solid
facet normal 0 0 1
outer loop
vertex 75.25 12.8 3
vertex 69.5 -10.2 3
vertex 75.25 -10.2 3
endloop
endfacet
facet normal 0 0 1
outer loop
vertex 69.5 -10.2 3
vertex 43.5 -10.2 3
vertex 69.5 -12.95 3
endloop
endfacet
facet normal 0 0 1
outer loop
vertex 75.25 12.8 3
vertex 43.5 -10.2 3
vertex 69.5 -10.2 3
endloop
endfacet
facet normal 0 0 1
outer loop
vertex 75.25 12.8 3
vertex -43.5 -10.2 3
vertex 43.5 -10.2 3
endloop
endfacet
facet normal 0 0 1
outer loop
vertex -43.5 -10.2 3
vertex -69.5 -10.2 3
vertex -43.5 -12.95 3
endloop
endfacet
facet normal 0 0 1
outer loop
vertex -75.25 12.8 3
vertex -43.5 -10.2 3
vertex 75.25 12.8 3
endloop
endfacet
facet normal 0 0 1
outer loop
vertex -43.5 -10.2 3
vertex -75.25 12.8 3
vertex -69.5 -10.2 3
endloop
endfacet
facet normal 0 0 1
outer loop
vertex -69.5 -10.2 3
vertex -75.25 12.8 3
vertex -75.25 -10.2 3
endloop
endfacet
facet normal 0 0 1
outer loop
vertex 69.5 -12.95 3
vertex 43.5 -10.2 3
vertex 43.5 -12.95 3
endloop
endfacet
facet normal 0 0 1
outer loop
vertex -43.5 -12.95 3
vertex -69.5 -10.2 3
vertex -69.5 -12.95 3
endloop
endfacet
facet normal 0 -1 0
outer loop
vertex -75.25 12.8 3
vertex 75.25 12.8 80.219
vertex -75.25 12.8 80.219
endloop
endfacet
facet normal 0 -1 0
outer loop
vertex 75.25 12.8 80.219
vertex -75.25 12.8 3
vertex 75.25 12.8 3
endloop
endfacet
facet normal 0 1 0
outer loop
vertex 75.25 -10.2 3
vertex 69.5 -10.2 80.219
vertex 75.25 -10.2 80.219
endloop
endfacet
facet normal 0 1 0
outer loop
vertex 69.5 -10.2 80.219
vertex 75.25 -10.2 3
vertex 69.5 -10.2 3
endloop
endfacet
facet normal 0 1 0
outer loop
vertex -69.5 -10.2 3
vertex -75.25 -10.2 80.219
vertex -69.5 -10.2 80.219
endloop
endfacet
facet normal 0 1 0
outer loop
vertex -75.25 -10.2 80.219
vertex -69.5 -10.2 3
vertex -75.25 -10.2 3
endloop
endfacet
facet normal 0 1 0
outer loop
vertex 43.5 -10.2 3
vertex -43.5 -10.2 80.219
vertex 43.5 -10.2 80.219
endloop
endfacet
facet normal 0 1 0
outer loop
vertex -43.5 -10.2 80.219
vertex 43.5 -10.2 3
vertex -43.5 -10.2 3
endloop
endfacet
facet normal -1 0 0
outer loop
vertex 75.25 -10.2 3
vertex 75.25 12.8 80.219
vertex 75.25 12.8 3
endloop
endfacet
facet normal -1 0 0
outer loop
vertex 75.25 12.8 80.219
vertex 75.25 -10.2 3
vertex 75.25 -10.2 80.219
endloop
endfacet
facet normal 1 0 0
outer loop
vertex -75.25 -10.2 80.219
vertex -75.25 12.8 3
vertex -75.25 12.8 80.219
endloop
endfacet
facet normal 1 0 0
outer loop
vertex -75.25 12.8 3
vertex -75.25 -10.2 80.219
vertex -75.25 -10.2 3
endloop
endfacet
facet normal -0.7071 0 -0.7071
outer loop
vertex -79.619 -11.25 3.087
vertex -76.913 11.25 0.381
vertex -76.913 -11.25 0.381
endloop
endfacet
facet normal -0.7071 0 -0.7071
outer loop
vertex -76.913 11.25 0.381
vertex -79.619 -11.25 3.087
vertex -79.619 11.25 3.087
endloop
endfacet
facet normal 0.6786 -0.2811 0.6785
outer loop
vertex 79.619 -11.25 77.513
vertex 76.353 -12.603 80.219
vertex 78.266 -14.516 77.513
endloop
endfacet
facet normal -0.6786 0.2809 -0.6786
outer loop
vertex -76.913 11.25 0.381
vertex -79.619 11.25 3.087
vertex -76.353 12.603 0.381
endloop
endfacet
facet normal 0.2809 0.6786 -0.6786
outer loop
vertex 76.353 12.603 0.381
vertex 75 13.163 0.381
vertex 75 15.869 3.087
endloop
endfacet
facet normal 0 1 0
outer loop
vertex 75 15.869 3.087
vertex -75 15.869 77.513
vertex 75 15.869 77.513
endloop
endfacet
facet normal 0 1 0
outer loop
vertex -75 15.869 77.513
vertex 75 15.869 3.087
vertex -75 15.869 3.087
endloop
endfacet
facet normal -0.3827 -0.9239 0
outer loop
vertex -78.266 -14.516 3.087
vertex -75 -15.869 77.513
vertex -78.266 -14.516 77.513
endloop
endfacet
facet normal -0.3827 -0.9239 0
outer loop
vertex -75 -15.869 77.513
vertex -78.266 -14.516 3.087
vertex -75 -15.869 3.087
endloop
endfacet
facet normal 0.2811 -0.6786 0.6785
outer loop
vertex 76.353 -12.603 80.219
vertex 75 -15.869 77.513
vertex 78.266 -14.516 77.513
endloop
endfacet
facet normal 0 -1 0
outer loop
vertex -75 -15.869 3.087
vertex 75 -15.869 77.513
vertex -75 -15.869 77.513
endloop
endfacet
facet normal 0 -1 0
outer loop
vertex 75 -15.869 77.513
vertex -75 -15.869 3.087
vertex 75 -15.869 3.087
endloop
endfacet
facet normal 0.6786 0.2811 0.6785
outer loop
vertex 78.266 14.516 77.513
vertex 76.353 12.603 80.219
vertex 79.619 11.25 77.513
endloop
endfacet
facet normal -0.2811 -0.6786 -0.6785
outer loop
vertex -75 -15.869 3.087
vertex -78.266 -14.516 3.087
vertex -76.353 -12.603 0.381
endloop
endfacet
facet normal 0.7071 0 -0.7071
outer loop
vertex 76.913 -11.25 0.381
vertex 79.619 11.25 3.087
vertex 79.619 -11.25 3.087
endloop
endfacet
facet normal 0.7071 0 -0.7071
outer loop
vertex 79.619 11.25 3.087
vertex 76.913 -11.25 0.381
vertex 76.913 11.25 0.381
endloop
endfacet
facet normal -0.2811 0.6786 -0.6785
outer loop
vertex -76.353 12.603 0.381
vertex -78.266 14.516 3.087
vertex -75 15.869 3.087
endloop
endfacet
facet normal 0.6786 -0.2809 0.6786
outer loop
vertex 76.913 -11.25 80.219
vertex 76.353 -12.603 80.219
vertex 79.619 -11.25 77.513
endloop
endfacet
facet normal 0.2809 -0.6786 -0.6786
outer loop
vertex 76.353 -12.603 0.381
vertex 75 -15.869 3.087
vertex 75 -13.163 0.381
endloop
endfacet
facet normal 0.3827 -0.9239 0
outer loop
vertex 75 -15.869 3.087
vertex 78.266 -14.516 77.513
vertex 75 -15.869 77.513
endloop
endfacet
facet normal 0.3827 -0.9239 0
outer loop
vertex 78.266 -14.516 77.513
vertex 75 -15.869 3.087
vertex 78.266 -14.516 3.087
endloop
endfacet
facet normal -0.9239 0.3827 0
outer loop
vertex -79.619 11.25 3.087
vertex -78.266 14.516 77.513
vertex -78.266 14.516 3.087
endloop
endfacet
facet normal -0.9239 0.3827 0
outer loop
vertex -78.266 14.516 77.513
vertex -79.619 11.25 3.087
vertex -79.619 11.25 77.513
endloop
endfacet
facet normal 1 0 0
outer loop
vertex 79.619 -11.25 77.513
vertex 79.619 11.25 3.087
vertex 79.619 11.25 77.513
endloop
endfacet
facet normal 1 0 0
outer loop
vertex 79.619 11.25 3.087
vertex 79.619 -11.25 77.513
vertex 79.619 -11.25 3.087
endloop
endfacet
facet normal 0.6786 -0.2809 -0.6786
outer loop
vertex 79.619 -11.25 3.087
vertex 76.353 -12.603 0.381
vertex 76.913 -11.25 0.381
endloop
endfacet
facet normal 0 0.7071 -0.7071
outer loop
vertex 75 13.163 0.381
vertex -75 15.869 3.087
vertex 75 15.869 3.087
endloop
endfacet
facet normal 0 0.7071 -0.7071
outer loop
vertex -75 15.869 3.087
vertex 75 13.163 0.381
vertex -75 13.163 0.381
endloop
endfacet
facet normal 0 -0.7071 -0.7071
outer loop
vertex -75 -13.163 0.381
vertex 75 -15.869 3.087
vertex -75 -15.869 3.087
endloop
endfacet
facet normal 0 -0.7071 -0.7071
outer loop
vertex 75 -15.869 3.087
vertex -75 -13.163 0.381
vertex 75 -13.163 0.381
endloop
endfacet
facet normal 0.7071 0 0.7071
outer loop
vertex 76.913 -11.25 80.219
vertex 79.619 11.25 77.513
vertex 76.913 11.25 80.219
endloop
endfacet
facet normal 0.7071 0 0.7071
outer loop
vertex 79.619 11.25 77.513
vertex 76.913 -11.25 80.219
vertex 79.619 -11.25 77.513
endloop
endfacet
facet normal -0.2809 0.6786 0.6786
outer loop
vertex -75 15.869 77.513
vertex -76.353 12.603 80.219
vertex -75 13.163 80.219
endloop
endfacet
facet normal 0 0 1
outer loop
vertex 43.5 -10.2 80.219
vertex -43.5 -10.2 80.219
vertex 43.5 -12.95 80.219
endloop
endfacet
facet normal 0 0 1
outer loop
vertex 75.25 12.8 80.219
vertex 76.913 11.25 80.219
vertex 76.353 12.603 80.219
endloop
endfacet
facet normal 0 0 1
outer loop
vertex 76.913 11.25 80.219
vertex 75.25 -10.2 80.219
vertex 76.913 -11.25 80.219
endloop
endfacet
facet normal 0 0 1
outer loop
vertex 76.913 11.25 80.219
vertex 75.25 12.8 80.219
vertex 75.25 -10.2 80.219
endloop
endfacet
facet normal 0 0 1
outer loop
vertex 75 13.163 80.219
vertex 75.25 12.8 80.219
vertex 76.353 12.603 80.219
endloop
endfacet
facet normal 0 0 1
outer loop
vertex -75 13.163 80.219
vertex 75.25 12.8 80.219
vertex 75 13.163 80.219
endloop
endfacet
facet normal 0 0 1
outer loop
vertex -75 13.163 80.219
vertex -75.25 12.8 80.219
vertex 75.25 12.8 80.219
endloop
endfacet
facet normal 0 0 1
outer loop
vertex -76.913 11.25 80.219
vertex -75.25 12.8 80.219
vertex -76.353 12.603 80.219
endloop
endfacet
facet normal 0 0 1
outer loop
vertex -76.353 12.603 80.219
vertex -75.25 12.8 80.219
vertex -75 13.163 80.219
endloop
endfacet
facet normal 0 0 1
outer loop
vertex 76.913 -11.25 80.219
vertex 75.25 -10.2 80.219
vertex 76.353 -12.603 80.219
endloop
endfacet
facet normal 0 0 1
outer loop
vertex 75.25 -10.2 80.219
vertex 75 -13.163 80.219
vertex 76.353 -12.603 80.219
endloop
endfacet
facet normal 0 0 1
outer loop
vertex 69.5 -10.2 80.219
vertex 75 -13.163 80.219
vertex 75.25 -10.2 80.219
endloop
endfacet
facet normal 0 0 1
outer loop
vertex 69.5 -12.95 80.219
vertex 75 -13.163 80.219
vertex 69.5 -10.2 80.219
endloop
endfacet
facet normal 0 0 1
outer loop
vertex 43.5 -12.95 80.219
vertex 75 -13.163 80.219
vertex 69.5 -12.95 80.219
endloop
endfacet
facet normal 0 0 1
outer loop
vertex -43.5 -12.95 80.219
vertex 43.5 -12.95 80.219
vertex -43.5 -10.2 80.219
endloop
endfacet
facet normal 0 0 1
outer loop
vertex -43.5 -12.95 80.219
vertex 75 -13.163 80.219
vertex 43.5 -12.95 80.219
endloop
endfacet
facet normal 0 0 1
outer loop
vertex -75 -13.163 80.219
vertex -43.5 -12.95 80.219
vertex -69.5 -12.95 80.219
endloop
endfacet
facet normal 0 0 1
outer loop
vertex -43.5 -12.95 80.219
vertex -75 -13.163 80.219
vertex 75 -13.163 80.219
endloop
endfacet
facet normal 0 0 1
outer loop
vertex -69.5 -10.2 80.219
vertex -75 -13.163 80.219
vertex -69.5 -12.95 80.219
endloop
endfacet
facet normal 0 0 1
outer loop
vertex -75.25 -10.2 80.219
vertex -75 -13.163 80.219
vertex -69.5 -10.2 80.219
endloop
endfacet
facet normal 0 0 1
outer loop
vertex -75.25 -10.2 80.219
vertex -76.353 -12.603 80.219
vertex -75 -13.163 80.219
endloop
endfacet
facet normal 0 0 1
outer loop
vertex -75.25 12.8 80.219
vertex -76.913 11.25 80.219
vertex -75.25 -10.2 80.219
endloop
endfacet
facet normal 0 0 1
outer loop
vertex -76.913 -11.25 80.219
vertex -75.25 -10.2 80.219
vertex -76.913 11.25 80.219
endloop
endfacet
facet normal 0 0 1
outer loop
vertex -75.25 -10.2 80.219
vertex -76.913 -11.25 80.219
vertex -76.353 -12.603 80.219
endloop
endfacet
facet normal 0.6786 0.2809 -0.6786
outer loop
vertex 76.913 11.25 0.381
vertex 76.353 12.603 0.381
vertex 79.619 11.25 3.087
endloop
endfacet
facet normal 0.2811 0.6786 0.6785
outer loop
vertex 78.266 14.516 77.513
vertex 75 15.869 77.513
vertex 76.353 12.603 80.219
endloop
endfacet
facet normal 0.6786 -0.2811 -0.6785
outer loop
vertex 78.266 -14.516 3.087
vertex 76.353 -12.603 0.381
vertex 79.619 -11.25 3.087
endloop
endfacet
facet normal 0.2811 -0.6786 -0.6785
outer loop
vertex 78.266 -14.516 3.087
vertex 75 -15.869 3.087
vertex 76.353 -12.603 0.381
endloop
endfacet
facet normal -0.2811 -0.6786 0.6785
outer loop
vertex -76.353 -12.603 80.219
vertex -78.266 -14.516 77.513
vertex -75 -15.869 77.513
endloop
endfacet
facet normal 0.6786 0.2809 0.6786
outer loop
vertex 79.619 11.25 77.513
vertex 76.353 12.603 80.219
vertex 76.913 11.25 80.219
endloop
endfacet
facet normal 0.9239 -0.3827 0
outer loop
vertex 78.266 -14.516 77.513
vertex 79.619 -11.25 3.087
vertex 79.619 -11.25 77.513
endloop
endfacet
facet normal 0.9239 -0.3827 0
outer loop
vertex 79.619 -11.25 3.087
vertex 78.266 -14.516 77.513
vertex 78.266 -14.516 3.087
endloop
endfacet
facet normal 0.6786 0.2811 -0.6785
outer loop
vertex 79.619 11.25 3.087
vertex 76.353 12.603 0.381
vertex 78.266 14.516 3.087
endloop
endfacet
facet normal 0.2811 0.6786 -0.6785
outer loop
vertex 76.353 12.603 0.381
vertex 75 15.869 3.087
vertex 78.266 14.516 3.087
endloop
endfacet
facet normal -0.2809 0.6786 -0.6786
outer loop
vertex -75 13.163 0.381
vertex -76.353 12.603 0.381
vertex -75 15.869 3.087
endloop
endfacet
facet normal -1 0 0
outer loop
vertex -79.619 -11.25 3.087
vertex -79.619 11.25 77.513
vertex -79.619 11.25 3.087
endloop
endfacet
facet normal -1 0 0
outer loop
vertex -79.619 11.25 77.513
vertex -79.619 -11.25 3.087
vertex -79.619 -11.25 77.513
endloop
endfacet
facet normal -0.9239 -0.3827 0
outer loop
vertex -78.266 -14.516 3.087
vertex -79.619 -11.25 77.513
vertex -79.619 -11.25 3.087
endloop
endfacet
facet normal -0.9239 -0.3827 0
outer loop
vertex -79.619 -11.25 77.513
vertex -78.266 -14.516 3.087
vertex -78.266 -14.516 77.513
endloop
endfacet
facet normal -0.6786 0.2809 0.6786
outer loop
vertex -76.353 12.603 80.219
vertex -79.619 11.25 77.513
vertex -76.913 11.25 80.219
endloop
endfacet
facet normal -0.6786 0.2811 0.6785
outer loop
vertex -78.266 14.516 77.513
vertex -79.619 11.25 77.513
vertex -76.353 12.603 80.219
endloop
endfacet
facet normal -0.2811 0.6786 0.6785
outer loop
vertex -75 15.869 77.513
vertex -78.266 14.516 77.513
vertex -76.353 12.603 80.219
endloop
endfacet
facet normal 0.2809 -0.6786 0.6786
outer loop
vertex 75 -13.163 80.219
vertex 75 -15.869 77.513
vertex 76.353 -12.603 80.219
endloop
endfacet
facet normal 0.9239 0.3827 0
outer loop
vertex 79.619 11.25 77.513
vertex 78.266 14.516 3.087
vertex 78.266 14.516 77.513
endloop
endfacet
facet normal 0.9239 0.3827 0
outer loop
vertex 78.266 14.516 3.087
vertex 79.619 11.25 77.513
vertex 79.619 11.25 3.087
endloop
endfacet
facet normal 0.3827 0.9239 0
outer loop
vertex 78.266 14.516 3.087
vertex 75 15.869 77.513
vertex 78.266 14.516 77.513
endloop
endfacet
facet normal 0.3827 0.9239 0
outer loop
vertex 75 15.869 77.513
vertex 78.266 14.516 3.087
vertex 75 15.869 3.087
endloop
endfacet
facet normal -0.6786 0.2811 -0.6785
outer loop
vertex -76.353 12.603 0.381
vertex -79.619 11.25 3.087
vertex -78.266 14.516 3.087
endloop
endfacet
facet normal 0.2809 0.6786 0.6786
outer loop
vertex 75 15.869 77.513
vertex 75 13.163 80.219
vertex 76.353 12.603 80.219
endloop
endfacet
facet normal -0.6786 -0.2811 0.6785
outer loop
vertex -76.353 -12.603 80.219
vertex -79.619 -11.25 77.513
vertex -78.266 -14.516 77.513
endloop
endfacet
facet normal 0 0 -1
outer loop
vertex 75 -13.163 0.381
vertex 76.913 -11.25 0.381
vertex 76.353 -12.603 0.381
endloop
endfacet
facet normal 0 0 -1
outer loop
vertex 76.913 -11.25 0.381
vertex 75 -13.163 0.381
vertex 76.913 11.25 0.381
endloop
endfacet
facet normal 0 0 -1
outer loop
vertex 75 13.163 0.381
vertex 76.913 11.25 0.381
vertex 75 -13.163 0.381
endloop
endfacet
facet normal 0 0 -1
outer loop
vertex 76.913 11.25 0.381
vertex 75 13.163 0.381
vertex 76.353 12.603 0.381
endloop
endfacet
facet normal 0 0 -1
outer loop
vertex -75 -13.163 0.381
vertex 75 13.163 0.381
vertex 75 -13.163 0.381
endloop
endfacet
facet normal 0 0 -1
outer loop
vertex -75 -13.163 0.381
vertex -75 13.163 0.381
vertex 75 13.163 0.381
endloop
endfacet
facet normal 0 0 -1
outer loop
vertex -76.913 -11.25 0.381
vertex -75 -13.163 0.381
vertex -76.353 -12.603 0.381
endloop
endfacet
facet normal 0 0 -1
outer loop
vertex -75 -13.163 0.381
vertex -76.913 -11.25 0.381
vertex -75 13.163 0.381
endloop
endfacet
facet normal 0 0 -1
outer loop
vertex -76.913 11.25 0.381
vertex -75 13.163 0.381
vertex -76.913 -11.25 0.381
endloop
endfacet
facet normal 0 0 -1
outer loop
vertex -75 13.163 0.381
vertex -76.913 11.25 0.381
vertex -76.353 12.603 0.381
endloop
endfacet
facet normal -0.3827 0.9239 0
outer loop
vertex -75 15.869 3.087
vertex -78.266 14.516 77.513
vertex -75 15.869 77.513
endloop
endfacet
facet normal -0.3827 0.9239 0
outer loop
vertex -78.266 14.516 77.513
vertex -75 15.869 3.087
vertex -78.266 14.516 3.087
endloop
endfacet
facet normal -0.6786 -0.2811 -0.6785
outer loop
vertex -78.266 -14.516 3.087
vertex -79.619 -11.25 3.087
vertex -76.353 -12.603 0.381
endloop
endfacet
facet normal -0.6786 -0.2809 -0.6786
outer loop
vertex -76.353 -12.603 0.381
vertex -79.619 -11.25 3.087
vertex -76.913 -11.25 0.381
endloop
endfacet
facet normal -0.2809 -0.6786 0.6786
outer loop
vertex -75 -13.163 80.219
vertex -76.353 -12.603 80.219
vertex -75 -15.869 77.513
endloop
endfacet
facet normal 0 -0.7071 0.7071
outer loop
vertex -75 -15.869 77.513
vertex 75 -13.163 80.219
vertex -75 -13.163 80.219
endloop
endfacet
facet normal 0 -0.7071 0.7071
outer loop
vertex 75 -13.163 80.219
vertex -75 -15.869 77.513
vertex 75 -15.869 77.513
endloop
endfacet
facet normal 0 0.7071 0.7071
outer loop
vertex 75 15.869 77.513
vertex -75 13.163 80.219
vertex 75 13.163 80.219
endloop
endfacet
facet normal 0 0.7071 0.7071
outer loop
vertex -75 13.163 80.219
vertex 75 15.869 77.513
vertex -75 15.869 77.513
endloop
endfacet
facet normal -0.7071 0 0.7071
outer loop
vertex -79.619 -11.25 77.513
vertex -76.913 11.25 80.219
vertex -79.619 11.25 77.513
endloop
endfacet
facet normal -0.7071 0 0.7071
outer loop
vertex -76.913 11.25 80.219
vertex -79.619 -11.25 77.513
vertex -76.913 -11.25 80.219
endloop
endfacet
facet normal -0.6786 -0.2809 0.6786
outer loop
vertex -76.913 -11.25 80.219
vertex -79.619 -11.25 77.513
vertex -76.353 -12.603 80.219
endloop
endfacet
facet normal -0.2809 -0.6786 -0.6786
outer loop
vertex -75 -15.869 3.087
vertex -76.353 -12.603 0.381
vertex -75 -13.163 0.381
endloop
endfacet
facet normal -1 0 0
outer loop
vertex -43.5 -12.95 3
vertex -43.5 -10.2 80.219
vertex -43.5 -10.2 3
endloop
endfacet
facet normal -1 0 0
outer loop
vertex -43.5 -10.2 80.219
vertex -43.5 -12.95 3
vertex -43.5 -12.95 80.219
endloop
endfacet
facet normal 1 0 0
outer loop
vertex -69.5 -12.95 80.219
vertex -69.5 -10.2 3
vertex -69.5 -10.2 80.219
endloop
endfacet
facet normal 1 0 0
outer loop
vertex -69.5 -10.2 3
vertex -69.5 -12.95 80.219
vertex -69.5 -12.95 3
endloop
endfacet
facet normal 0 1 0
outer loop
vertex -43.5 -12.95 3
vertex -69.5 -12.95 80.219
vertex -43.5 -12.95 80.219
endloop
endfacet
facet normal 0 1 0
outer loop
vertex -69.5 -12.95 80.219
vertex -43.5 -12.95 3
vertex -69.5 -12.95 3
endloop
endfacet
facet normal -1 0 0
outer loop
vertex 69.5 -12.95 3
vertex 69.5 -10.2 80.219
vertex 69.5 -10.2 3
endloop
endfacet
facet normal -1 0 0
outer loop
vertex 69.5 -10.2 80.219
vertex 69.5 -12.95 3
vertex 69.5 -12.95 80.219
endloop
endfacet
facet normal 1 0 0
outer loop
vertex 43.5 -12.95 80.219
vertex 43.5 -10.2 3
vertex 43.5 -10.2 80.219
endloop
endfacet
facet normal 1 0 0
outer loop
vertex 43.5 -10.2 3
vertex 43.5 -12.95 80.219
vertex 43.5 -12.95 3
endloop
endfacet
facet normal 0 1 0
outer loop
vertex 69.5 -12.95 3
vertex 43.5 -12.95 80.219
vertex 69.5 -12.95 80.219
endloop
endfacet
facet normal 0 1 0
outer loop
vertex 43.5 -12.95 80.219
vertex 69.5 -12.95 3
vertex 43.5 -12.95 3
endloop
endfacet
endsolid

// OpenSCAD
$fn=8;

rg350m_x = 146.0;
rg350m_y = 18.5;
rg350m_z = 74.6;

module case() translate([0,1.3,0]) difference() {
    // Outer shell
    translate([0,-1.3,0]) // fudge factor
    union() {
        r = 5;
        x = rg350m_x+14 - r*2;
        y = rg350m_y+14 - r*2;
        z = rg350m_z+3+3 - r*2;

        translate([-x/2, -y/2, r]) minkowski() {
            cube([x, y, z]);
            sphere(r=r);
        }
    }

    // Button clearance
    btn_clear_width = 24 + 2;
    translate([4.5 - 1, -rg350m_y/2 + 9 - 5, 0])
        translate([-rg350m_x/2 + btn_clear_width/2, 0, 3])
            translate([-btn_clear_width/2,-9,0]) cube([btn_clear_width, 9, 80]);
    translate([-4.5+1, -rg350m_y/2 + 9 - 5, 0])
        translate([rg350m_x/2 - btn_clear_width/2, 0, 3])
            translate([-btn_clear_width/2,-9,0]) cube([btn_clear_width, 9, 80]);

    // Grip clearance
    translate([rg350m_x/2 - 20/2 - (16-1),0,0])
        translate([0, rg350m_y/2 + 0.5/2 + 1.5, 3])
            translate([-20/2,-5,0]) cube([20, 5, 80]);
    translate([-rg350m_x/2 + 20/2 + (16-1),0,0])
        translate([0, rg350m_y/2 + 0.5/2 + 1.5, 3])
            translate([-20/2,-5,0]) cube([20, 5, 80]);
    
    // Felt clearance - 2.25mm each side
    union() {
        fx = rg350m_x+4.5;
        fy = rg350m_y+4.5;
        fz = rg350m_z+4.5;
        translate([-100/2,-fy/2, 3]) cube([100, fy, fz]);
        translate([-fx/2, -fy/2, 3]) cube([fx,fy, fz]);
    }
}

module felt_pattern() {
    // bottom
    translate([-rg350m_x/2, -rg350m_y/2]) square([rg350m_x, rg350m_y]);
    
    // back face
    translate([0,0.01])
    translate([-74/2, rg350m_y/2]) square([74, rg350m_z]);
    
    // front face
    translate([0,-0.01])
    translate([-84/2, -rg350m_z - rg350m_y/2]) square([84, rg350m_z]);

    translate([-rg350m_z/2 - rg350m_x/2 - rg350m_z/2 - 0.01, -rg350m_y/2]) square([rg350m_z, rg350m_y]);

    translate([-rg350m_z/2 + rg350m_x/2 + rg350m_z/2 + 0.01, -rg350m_y/2]) square([rg350m_z, rg350m_y]);
}

//translate([0,0,-50])
    case();

//rotate([0,0,60])
//    felt_pattern();    // rotated to fit A4 page

//translate([-rg350m_x/2, -rg350m_y/2, 3.01]) cube([rg350m_x, rg350m_y, rg350m_z]);
